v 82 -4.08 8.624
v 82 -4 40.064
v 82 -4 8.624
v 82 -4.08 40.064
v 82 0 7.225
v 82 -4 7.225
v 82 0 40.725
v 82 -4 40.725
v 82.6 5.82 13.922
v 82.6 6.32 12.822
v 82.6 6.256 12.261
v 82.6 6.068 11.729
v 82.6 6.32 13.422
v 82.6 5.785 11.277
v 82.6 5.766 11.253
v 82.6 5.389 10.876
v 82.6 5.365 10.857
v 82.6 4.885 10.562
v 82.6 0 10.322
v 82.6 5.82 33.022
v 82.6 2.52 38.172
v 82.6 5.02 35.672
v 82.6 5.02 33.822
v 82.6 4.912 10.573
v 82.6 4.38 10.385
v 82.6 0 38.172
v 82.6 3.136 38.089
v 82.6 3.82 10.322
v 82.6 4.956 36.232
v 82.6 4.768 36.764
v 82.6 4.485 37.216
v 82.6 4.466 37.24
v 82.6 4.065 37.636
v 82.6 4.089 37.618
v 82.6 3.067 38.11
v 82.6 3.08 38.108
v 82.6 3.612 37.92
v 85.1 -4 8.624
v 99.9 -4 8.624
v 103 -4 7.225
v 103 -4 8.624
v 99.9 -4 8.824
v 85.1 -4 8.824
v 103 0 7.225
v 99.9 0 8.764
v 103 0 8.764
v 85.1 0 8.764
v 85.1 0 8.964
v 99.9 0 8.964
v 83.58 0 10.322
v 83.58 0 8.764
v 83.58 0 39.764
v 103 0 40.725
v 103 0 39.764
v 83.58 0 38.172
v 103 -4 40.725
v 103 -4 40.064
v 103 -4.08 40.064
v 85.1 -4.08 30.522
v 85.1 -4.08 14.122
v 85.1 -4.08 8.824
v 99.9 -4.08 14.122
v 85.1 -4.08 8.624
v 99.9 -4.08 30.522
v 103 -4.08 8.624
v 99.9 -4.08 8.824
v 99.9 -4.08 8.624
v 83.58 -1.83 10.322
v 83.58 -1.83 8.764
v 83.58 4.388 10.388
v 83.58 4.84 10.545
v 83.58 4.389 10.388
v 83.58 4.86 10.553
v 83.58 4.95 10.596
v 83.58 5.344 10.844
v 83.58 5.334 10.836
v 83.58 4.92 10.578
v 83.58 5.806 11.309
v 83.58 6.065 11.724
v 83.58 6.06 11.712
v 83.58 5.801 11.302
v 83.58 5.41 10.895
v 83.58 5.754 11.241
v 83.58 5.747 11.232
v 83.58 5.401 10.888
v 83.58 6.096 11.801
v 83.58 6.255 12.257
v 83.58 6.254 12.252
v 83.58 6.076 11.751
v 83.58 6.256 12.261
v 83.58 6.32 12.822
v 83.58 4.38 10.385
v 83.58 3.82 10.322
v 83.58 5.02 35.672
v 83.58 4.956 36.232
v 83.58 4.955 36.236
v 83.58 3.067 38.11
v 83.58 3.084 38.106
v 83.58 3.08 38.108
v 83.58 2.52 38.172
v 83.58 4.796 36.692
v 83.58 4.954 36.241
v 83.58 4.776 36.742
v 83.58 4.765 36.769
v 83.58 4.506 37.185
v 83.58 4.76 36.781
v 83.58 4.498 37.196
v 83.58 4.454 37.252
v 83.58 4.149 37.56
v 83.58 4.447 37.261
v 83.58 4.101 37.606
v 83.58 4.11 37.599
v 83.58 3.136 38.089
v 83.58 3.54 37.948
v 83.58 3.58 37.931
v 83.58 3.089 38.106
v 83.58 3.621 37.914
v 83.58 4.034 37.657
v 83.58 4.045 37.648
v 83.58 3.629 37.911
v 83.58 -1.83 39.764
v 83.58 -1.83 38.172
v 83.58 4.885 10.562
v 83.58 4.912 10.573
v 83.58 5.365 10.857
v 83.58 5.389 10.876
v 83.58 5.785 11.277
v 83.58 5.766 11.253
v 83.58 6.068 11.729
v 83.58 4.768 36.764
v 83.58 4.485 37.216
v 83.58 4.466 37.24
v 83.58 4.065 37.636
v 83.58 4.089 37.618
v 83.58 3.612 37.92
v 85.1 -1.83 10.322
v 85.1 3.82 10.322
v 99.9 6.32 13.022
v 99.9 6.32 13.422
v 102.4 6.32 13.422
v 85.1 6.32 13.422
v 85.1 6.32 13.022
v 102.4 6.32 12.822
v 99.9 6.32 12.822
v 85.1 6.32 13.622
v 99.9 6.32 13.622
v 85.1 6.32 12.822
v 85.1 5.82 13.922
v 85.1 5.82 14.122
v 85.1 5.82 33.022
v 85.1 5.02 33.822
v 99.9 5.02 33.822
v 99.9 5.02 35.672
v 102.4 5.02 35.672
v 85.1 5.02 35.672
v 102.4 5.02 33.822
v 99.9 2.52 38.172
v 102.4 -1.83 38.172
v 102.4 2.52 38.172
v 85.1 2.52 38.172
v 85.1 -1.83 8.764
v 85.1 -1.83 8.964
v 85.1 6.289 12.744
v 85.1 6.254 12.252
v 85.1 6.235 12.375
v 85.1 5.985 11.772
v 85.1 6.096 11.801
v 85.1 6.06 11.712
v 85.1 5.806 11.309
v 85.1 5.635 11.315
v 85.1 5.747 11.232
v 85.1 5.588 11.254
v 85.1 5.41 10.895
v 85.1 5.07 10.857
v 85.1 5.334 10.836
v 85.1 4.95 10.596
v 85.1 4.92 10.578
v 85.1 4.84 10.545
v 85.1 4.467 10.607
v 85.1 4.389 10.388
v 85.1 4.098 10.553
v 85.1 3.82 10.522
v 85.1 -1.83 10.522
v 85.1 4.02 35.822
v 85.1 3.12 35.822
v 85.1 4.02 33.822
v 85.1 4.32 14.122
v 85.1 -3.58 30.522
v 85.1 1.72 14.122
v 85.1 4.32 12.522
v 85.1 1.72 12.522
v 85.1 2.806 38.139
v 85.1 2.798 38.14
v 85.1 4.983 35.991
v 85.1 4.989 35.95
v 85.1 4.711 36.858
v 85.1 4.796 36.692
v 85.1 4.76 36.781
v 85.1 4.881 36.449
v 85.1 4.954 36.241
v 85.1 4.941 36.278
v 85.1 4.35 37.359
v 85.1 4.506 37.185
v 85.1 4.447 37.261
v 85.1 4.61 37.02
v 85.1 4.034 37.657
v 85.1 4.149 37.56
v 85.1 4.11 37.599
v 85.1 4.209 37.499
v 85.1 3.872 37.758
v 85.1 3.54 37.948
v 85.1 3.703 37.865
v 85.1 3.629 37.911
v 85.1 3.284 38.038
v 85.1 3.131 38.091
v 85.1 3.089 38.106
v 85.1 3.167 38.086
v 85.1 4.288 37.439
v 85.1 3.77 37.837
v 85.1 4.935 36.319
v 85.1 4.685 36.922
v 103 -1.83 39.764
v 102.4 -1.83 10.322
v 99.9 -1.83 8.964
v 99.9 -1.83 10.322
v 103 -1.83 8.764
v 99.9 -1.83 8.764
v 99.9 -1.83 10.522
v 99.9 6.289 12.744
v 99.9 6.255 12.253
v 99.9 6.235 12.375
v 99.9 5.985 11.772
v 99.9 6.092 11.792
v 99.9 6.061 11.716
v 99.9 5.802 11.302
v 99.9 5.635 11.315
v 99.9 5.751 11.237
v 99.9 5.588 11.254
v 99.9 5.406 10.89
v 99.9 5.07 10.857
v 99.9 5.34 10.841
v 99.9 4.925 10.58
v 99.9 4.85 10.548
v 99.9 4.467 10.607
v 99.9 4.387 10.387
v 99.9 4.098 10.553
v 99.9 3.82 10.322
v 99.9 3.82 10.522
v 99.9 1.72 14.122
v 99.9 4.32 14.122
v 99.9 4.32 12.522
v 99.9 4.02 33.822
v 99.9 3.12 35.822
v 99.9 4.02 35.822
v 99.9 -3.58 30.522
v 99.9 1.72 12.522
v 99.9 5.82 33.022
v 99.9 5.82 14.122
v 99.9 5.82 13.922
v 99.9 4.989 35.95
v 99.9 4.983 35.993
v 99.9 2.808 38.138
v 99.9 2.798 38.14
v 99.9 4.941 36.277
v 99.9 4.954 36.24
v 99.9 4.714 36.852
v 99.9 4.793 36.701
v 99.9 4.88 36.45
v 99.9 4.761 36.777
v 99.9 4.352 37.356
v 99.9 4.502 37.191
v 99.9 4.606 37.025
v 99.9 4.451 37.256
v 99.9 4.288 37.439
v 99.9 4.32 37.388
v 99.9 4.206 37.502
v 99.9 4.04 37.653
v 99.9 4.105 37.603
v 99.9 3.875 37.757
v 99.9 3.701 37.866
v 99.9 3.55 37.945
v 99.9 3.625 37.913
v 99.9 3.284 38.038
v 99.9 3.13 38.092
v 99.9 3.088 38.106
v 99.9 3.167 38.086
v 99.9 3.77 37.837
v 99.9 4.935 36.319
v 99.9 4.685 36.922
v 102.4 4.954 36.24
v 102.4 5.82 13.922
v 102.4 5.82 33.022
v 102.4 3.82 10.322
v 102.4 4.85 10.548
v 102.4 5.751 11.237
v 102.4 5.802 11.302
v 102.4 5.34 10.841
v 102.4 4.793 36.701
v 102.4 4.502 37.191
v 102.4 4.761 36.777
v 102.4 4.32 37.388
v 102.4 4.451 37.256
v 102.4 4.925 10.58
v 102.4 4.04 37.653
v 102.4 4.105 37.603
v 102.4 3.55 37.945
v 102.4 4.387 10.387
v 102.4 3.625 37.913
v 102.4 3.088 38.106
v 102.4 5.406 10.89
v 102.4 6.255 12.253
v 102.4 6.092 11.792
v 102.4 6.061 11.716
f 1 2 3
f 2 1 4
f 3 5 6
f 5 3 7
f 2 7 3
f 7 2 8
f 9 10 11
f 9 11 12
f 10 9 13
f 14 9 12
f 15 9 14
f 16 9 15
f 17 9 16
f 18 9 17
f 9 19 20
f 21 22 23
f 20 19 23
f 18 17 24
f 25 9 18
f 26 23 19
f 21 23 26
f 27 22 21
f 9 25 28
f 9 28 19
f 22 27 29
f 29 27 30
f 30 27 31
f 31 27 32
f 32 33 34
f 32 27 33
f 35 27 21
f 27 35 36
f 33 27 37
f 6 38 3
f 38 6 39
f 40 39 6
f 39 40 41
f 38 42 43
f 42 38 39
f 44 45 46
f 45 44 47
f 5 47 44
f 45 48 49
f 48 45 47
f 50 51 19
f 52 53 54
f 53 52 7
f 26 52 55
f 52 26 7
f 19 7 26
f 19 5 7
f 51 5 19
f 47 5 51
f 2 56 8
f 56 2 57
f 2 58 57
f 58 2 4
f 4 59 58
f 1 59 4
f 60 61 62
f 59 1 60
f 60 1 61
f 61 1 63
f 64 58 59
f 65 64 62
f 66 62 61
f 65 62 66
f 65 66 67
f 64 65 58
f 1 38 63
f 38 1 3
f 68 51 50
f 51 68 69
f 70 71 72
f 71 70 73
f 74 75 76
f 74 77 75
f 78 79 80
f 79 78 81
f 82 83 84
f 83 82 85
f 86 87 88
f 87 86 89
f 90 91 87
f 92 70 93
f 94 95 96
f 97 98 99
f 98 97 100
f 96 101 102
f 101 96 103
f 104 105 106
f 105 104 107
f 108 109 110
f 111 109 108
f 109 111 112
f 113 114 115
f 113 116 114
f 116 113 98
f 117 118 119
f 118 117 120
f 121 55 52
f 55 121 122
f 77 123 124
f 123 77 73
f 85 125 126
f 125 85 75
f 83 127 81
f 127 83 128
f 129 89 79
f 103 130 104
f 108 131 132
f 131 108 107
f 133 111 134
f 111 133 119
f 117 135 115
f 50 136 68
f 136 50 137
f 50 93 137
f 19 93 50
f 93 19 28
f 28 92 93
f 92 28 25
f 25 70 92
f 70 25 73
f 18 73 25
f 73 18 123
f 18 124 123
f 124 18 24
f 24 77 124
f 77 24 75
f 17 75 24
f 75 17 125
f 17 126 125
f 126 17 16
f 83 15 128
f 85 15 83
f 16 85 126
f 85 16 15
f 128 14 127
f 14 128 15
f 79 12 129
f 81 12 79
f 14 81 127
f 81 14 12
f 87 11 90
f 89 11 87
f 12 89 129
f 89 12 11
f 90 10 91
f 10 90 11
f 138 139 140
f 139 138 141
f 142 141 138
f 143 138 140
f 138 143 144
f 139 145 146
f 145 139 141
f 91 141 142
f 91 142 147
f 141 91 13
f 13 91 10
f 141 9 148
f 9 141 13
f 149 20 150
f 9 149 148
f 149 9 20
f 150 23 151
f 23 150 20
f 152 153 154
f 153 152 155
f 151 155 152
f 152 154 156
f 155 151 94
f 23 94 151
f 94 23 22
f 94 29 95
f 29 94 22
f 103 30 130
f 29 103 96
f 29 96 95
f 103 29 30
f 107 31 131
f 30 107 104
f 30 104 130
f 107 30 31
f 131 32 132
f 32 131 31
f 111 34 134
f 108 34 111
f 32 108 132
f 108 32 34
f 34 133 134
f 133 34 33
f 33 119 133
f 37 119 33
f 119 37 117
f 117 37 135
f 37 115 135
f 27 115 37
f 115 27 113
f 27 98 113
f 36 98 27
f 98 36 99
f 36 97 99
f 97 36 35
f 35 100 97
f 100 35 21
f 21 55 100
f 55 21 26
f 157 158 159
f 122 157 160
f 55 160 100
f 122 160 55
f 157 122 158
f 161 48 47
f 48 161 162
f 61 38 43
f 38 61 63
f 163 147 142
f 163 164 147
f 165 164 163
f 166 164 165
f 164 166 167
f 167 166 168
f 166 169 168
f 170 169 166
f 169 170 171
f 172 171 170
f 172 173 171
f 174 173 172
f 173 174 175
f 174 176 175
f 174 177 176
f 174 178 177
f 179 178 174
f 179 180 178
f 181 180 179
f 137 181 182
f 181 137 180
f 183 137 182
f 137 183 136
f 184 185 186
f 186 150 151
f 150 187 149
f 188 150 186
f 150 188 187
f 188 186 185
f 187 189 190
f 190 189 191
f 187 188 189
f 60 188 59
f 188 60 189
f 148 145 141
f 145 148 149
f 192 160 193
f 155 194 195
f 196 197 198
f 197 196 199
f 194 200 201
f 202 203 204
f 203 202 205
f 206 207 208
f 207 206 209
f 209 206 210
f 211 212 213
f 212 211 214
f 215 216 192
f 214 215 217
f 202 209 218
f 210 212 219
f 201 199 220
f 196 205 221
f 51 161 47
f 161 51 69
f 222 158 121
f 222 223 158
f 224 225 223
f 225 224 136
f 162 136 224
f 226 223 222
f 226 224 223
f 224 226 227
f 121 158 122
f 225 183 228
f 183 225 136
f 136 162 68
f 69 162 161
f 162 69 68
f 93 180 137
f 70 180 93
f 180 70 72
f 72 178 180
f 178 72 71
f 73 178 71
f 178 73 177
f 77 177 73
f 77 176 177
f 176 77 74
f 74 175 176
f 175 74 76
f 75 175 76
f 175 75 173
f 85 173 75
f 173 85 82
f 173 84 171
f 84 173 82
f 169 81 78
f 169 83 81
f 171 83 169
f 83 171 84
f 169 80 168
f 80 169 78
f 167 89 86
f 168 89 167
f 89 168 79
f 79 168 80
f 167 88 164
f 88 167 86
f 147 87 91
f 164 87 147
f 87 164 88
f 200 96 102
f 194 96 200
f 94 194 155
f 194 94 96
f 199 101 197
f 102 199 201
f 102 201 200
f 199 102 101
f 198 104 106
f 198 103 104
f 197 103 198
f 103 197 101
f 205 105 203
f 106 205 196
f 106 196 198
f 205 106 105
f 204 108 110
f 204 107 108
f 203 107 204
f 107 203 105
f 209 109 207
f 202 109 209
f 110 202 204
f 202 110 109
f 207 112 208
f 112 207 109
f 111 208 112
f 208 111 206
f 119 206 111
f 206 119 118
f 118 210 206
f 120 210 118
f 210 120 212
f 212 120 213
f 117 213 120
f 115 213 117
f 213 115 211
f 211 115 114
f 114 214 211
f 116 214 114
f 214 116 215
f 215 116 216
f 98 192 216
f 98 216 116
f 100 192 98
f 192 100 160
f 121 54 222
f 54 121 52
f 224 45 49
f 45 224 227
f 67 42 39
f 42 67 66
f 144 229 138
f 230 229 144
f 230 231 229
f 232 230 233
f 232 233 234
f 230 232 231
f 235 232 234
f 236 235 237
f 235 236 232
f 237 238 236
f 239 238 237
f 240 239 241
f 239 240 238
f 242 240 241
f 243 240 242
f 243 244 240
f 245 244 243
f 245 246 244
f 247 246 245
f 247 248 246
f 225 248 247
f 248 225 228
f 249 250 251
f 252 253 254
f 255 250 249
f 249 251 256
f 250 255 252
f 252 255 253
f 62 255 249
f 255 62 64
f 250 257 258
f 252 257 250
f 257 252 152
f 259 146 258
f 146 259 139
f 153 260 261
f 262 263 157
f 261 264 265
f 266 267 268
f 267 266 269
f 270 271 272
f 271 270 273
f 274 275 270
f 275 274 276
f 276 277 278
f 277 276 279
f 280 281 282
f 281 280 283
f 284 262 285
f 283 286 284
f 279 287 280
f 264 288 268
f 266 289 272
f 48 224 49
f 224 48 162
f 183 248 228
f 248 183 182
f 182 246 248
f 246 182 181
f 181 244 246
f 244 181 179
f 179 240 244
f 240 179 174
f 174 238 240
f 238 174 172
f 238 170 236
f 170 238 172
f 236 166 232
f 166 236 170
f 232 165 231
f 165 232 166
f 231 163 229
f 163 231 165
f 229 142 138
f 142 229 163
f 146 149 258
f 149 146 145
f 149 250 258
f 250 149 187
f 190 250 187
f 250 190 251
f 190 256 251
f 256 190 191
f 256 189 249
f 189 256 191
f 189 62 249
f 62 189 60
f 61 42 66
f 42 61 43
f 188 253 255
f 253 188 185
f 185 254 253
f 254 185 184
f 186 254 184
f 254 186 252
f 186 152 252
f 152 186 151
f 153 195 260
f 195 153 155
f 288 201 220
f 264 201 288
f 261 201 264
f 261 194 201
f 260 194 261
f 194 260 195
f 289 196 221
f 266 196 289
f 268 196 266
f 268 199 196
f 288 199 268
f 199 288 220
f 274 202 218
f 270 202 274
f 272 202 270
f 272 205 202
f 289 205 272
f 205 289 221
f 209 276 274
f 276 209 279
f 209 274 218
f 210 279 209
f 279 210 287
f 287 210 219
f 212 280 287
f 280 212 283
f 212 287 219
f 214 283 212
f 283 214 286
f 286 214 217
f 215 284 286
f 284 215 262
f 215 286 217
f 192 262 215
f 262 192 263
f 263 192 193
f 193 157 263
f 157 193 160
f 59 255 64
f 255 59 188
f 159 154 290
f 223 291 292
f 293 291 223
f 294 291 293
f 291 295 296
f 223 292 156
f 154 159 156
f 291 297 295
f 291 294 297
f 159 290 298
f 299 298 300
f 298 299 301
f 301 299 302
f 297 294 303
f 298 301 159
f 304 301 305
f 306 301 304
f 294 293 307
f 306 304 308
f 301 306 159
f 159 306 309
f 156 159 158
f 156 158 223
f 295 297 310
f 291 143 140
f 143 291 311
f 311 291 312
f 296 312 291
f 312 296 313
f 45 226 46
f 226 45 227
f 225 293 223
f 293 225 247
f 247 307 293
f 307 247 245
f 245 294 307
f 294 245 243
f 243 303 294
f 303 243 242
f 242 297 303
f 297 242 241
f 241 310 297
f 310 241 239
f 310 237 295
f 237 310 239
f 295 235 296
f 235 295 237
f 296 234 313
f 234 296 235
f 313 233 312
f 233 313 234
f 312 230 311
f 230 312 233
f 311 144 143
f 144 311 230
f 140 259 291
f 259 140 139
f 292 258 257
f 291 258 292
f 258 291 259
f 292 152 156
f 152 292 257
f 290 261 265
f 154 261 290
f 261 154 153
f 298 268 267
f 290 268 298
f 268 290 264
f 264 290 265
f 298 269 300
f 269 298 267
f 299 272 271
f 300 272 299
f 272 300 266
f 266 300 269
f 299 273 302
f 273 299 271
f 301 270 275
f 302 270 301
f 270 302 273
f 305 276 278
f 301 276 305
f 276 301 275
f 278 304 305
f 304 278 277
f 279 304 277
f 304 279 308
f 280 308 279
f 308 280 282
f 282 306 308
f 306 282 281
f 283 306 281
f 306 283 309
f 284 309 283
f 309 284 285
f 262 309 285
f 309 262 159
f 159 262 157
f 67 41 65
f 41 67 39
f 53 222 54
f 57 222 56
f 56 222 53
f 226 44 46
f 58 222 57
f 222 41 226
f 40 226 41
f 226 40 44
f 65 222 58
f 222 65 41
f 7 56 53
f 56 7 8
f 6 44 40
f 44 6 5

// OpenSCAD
// Lab Rax generic equipment tray + faceplate (wizard template).
// Faceplate derived from the Pi4 baseline; rack holes follow the four-corner layout of the user-supplied
// 1U blank plate (faceplate_mounting.json): EVERY rack unit gets 4 holes, never a single centre pair.
// The wizard appends override assignments at the end of this file.
// PROPOSED, UNVALIDATED: printed fit, strength and rack clearance are UNKNOWN.
$fn=48;
part="assembly";            // assembly, faceplate, tray, combined, rear_bracket
// Device envelope (mm). Origin of hole coordinates = device front-left corner, seen from above.
dev_w=85; dev_d=56; dev_h=20;
feet=[];                     // [[x,y,w,d,h],...] underside feet, device frame front-left origin
holes=[];                   // [[x,y],...] mounting hole centres
hole_d=2.7;                 // device mounting hole diameter
device_mount="inserts";     // inserts, pegs, clips, straps
standoff=6;                 // device lift above tray floor
insert_pilot=3.2;           // pilot for heat-set insert (inserts mode)
board_t=1.6;                // board/flange thickness (pegs, clips)
joint="screw";              // screw, single ("snap" retired 2026-10-19: too brittle; kept as history)
u=1;                        // faceplate height in rack units
keystones=[];               // [x,...] keystone centres on faceplate (X=0 centre)
// Keystone v2 (2026-10-19, now the fallback; see ks_style): re-modelled from measurements of Brian's reference keystone frame
// (14.5 x 16 opening was too narrow when printed). Opening 14.8 x 16.6 through the plate, plus a rear collar
// 19.8 x 27.85 reaching 9.2 mm behind the front face (bottom lip to 10.4) that carries the latch ramp and catches.
ks_w=14.8; ks_h=16.6;       // front opening
ks_ow=19.8; ks_ob=11.9; ks_ot=15.95; ks_od=9.2; ks_lip=10.4;  // collar width, below/above opening centre, depth
ports=[];                   // [[x,z,w,h,r],...] faceplate cut-outs, z from slot bottom, r=corner radius
front_gap=12;               // device front to faceplate rear face
margin=8;                   // tray border around device
dev_off_x=0;                // device left/right offset, mm from centred (+ = right, seen from the front)
dev_off_y=0;                // device front/back offset, mm added to front_gap (+ = toward the rear)
dev_rot=0;                  // device rotation seen from above: 0, 90, 180, 270 (90/270 swap width and depth)
rear_support=false;         // heavy/deep equipment: tray runs to the rear posts and screws to a rear bracket
coupon=[];                  // test coupon: [x0,x1,ymax] keeps only that slice of the part

// 4 mm plate (owner default 2026-10-18). Corner radius is limited by the four-corner holes:
// the reference holes sit 1.6 mm from the top/bottom edge, so larger corners would cut into them.
rack_pitch=44.45; plate_gap=0.05; legacy_slot_offset=1.225;
plate_bottom=plate_gap/2; plate_center=u*rack_pitch/2;
plate_w=252; plate_t=4; plate_r=2.5; plate_h=u*rack_pitch-plate_gap;
hole_x=118.2625; hole_dz=15.902;   // each U: holes at its centre ±hole_dz (6.323 / 38.127 above the slot bottom)
rack_depth=240;             // Lab Rax frame depth (front of front posts to back of rear posts)
nudge=0;                    // render-repair only: tiny size offset applied when OpenSCAD 2021 emits a sliver
sleeve=device_mount=="sleeve";
// PROPOSED sleeve defaults (mm); independent design, fit and strength UNKNOWN.
sl_side=0.5; sl_top=0.3; sl_wall=6; sl_lip_w=10; sl_lip_t=1.5; sl_band=1.5; sl_stop_t=4; sl_stop_h=6;
foot_clearance=0.5; foot_extra_depth=0.3; foot_min_floor=0.8; foot_lip_t=3.0;
tray_t=3; floor_z=(device_mount=="flat"||sleeve)?0.5:7+legacy_slot_offset; tray_z=floor_z; // @flat-floor
assert(dev_rot==0||dev_rot==90||dev_rot==180||dev_rot==270,"dev_rot must be 0, 90, 180 or 270");
// Device footprint on the tray after rotation; the tray stays centred and grows to keep the margin.
fp_w=(dev_rot==90||dev_rot==270)?dev_d:dev_w; fp_d=(dev_rot==90||dev_rot==270)?dev_w:dev_d;
rack_inner_w=208; side_clear=2; max_tray=rack_inner_w-2*side_clear; // PROPOSED nominal opening / side clearance
tray_w=2*(abs(dev_off_x)+fp_w/2+(sleeve?max(margin,sl_side+sl_wall):margin)); tray_d=rear_support?rack_depth:sleeve?-plate_t+fp_d+margin:dev_off_y+fp_d+front_gap+margin;
tray_x=-tray_w/2; tray_y=0;
 // @flat-begin
assert(device_mount!="flat"||front_gap+dev_off_y>=6.2,"Flat corner stops need a front gap of at least 6.2 mm");
assert(device_mount!="flat"||joint!="screw"||front_gap+dev_off_y>=11.5,"Flat device must clear the front screw joint (front gap >= 11.5 mm)");
assert(device_mount!="flat"||!rear_support||front_gap+dev_off_y+fp_d<=rack_depth-11.5,"Flat device must clear the rear screw joint (rear gap >= 11.5 mm)");
 // @flat-end
dev_x=-fp_w/2+dev_off_x; dev_y=sleeve?-plate_t:front_gap+dev_off_y; floor_top=tray_z+tray_t;
assert(tray_w<=max_tray,str("This tray is ",tray_w," mm wide but the rack opening allows ",max_tray," mm (",rack_inner_w," mm minus ",side_clear," mm each side). Try Rotate 90 degrees, or reduce dev_off_x."));
assert(sleeve||dev_y>=0,str("Device moved into the faceplate: dev_off_y must be at least ",-front_gap));
assert(!rear_support||dev_y+fp_d+margin<=rack_depth,"Device moved past the rear posts; reduce dev_off_y");
// Device-frame point [x,y] (front-left origin, unrotated) -> footprint offset from [dev_x,dev_y].
function dp(p)=dev_rot==90?[dev_d-p[1],p[0]]:dev_rot==180?[dev_w-p[0],dev_d-p[1]]:dev_rot==270?[p[1],dev_w-p[0]]:p;
foot_h=(device_mount=="flat"||sleeve)?max([0,for(f=feet)f[4]]):0; foot_depth=foot_h>0?foot_h+foot_extra_depth:0;
sl_half=fp_w/2+sl_side; sl_bottom=floor_top; sl_window_top=sl_bottom+dev_h-foot_h+sl_top;  // case rests on the floor top; feet hang in pockets foot_extra_depth deeper
sl_lip=sl_window_top+(foot_h>0?foot_lip_t:sl_lip_t)<=u*rack_pitch?(foot_h>0?foot_lip_t:sl_lip_t):0;
sl_rear=dev_y+fp_d;
sl_joints=[dev_off_x-sl_half-sl_wall/2,dev_off_x+sl_half+sl_wall/2];
sl_joint_z=[sl_bottom+3,sl_window_top-3];
assert(!sleeve||fp_d/4-plate_t-6>=8,"Sleeve depth must be at least 72 mm to keep strap slots clear of the front joint");
assert(!sleeve||sl_bottom-plate_bottom>=sl_band&&u*rack_pitch-plate_bottom-sl_window_top>=sl_band,str("Too tall for a flush window in ",u,"U; choose ",u+1,"U"));
assert(!sleeve||!rear_support||sl_rear+sl_stop_t<=rack_depth-11.5,"Sleeve rear stop must clear rear joint by 11.5 mm");
assert(!sleeve||joint!="screw"||sl_window_top-sl_bottom>=10,"Sleeve screw joint needs a window at least 10 mm tall");
jx=min(40,tray_w/2-12); joint_x=[-jx,jx];
tongue_w=12; tongue_depth=7; tongue_h=3; tongue_z=tray_z+3.5;
slot_clear=0.3; boss_d=14; m3_clear=6.6; joint_pilot=7.6;  // HP4-M6-B: rack M6 insert bore and clearance

// @m6-begin
// M6 bracket hardware (Brian, 2026-10-28; reproduces the approved HDT-M6-A drive tray). Opt-in m6_joint: equipment.py
// switches it on (front_gap 15.5, boss 14, insert bore 7.6 = the rack posts' M6 insert holes, 6.6 clearance) and kept
// only then. Joints: inner pair + one at each tray edge (edge pair only on narrow trays); edge joints 2 screws, inner the
// upper one. Tabs: rounded-top 20 x 6 plate with the tongue-slot foot, 4 mm floor coves, 11.5 x 3.5 counterbore so the
// M6 x 8 button head sits below the rear face. PROPOSED — UNVALIDATED: fit and strength UNKNOWN.
function jzx(x)=[24];  // HP4-M6-B: one screw at Z=32.225; boss top 39.225, tab top 42.225
side_wall_t=2.5; side_wall_h=15; up_t=6; cb_d=11.5; cb_depth=3.5; tab_w=20; tab_foot_h=5; fil_r=4; floor_r=6; wall_r=6;
module m6_tray_joint_add(){
 ft=tray_z+tray_t;  // floor top
 for(x=joint_x)intersection(){
  union(){
   translate([0,8.3+up_t,0])rotate([90,0,0])linear_extrude(up_t)hull(){translate([x-tab_w/2,ft-0.01])square([tab_w,1]);translate([x,tray_z+max(jzx(x))])circle(d=tab_w);}
   hull(){translate([x-tab_w/2,0,ft-0.01])cube([tab_w,8.3+up_t,1]);translate([x-tab_w/2,8.3,ft-0.01])cube([tab_w,0.01,tab_foot_h]);
         translate([x-tab_w/2,1.5,ft+tab_foot_h-1.5])rotate([0,90,0])cylinder(r=1.5,h=tab_w);translate([x-tab_w/2,0,ft-0.01])cube([tab_w,0.01,tab_foot_h-1.5]);}
   for(sd=[-1,1])translate([x+sd*tab_w/2-(sd<0?fil_r:0),8.3,ft-0.01])difference(){cube([fil_r,up_t,fil_r]);translate([sd<0?0:fil_r,-0.1,fil_r])rotate([-90,0,0])cylinder(r=fil_r,h=up_t+0.2);}
  }
  translate([tray_x0,-1,0])cube([tray_x1-tray_x0,tray_d+2,60]);  // unchanged asymmetric floor bounds
 }
 // HP4-M6-B: edge walls omitted to preserve the keystone gap and wide cable lane.
}
module m6_tray_joint_cut(){for(x=joint_x,zz=jzx(x)){translate([x,8.3+up_t+0.1,tray_z+zz])rotate([90,0,0])cylinder(d=m3_clear,h=up_t+9);
 translate([x,8.3+up_t+0.1,tray_z+zz])rotate([90,0,0])cylinder(d=cb_d,h=cb_depth+0.1);}}
// @m6-end

module capsule2d(len=10,diam=7){hull(){translate([-(len-diam)/2,0])circle(d=diam);translate([(len-diam)/2,0])circle(d=diam);}}
module rrect(w,h,r){rr=min(r,w/2-0.01,h/2-0.01);if(rr<=0)square([w,h],center=true);else offset(r=rr)square([w-2*rr,h-2*rr],center=true);}
// Mirror front-of-tray features to the rear (about the rack's mid-depth).
module to_rear(){translate([0,rack_depth/2,0])mirror([0,1,0])translate([0,-rack_depth/2,0])children();}

// Faceplate outline seen from the front: 2D X = rack X, 2D Y = height Z.
// rear=true cuts the larger keystone pocket; plain=true leaves out keystones/ports (rear bracket).
module plate2d(rear=false,plain=false){
 difference(){
  hull()for(sx=[-1,1],sz=[-1,1])translate([sx*(plate_w/2-plate_r),plate_center+sz*(plate_h/2-plate_r)])circle(r=plate_r+nudge);
  for(i=[0:u-1],dz=[-hole_dz,hole_dz],x=[-hole_x,hole_x])translate([x,i*rack_pitch+rack_pitch/2+dz])capsule2d();
  if(!plain){
   if(sleeve)translate([dev_off_x,(sl_bottom+sl_window_top)/2])square([2*sl_half,sl_window_top-sl_bottom],center=true);
   for(p=ports)translate([p[0],p[1]])rrect(p[2],p[3],p[4]);
  }
 }
}
// Plate between y=y0 (front) and y0+t, built from the 2D outline (cleaner meshes than 3D cuts in OpenSCAD 2021).
module plate_layer(y0,t,rear=false,plain=false){translate([0,y0+t,0])rotate([90,0,0])linear_extrude(height=t)plate2d(rear,plain);}

module plate_joint_add(rear=false){
 if(joint=="screw"&&(!sleeve||rear)){
  for(x=joint_x)translate([x-tongue_w/2,0,tongue_z])cube([tongue_w,tongue_depth,tongue_h]);
  for(x=joint_x,zz=jzx(x))translate([x,0,tray_z+zz])rotate([-90,0,0])cylinder(d=boss_d,h=8);
 }
 if(joint=="snap") for(x=joint_x){
  // Cantilever arm under the tray floor; barb snaps up into a floor window.
  translate([x-4,0,tray_z-2])cube([8,16,2]);
  // Barb v2: square catch face toward the plate, ramp falling toward the rear so the tray, slid in
  // from the rear, cams the arm down until its window drops over the barb.
  translate([x-4,12,tray_z])hull(){cube([8,0.6,1.2]);cube([8,2.4,0.01]);}
 }
}
// Keystone collar behind the plate, and the jack-shaped cut through plate + collar.
// Profile in (d = depth behind front face, z from opening centre); X width is ks_w throughout.
module ks_collar(){for(x=keystones)translate([x-ks_ow/2,-plate_t,plate_center]){
 translate([0,0,-ks_ob])cube([ks_ow,ks_od,ks_ob+ks_ot]);
 translate([0,0,-ks_ob])cube([ks_ow,ks_lip,ks_ob-ks_h/2]);
}}
module ks_cut(){for(x=keystones)translate([x-ks_w/2,-plate_t,plate_center])rotate([90,0,90])linear_extrude(height=ks_w)
 polygon([[-1,-ks_h/2],[5.8,-ks_h/2],[5.8,-9.9],[9.2,-9.9],[9.2,-ks_h/2],[11,-ks_h/2],[11,11.6],[8.2,11.6],
          [8.2,ks_ot+1],[7.2,ks_ot+1],[7.2,13.6],[0.6,ks_h/2],[-1,ks_h/2]]);}
// Golden keystone (Brian, 2026-10-19): exact cross-sections of the keystone on Brian's SG108 faceplate, which fits
// perfectly in practice. Source: "10 inch shelf TP-Link SG108 Plus Keystone" by Goul (MakerWorld remix, BY-NC-SA),
// local/personal use only, never redistributed. Each band: [X from opening centre, width, polygons in source (Y, Z)]
// with source Y running down the plate (opening centre Y=25.09) and Z = depth (keystone face 0, plate back 4.08).
// The block replaces the plate within 21 x 33.5 mm around each keystone; front face sits 0.08 proud like the source.
ks_style="golden";          // golden (SG108 copy) or v2 (own measured rebuild, kept as fallback)
// Brian, 2026-10-19: the golden v3 print fit left/right well but had ~0.4 mm play up/down. ks_tight moves the
// bottom (hook-side) edge of the opening, its hook groove and lip up by this much; the latch side is unchanged.
ks_tight=0.2;  // Brian, 2026-10-19: v5 coupon (0.2) printed a perfect fit; v4 (0.4) was too tight.
KS_GOLD=[
  [-10.50,0.60,[[[45.500,4.080],[45.500,0.080],[38.691,0.080],[38.691,0.000],[7.251,0.000],[7.251,0.080],[1.000,0.080],[1.000,4.080],[1.071,4.080]]]],
  [-9.90,0.98,[[[9.143,4.080],[9.143,6.600],[9.205,7.147],[9.207,7.160],[9.226,7.216],[9.395,7.692],[9.679,8.145],[9.697,8.169],[10.075,8.546],[10.099,8.565],[10.551,8.848],[11.083,9.036],[11.643,9.100],[13.493,9.100],[14.293,9.900],[33.393,9.900],[33.893,10.400],[34.493,10.400],[35.054,10.336],[35.586,10.148],[36.038,9.865],[36.062,9.846],[36.439,9.469],[36.458,9.445],[36.742,8.992],[36.753,8.965],[36.930,8.460],[36.993,7.900],[36.993,4.080],[45.500,4.080],[45.500,0.080],[38.691,0.080],[38.691,0.000],[7.251,0.000],[7.251,0.080],[1.000,0.080],[1.000,4.080],[1.014,4.080]]]],
  [-8.92,1.52,[[[7.551,4.080],[7.551,2.250],[9.143,2.250],[9.143,6.600],[9.209,7.169],[9.367,7.620],[9.404,7.709],[9.658,8.114],[9.716,8.190],[9.755,8.229],[10.054,8.527],[10.130,8.586],[10.534,8.840],[10.623,8.876],[11.074,9.034],[11.643,9.100],[13.493,9.100],[14.293,9.900],[33.393,9.900],[33.893,10.400],[34.493,10.400],[35.063,10.334],[35.514,10.176],[35.603,10.140],[36.006,9.886],[36.083,9.827],[36.420,9.490],[36.479,9.414],[36.719,9.030],[36.737,9.000],[36.770,8.920],[36.927,8.469],[36.993,7.900],[36.993,2.250],[38.551,2.250],[38.551,4.080],[45.500,4.080],[45.500,0.080],[38.691,0.080],[38.691,0.000],[7.251,0.000],[7.251,0.080],[1.000,0.080],[1.000,4.080],[1.044,4.080]]]],
  [-7.40,14.80,[[[7.551,4.080],[7.551,2.250],[9.143,2.250],[9.143,6.600],[9.175,6.878],[9.229,7.247],[9.478,7.850],[9.876,8.368],[10.393,8.765],[10.996,9.015],[11.365,9.069],[11.643,9.100],[13.493,9.100],[13.493,8.100],[11.493,8.100],[11.493,7.200],[16.793,0.500],[16.793,0.000],[7.251,0.000],[7.251,0.080],[1.000,0.080],[1.000,4.080],[1.025,4.080]],[[45.500,4.080],[45.500,0.080],[38.691,0.080],[38.691,0.000],[33.393,0.000],[33.393,5.800],[34.993,5.800],[34.993,8.400],[33.393,8.400],[33.393,9.900],[33.893,10.400],[34.493,10.400],[34.771,10.369],[35.140,10.315],[35.743,10.065],[36.200,9.715],[36.261,9.668],[36.658,9.150],[36.908,8.547],[36.962,8.178],[36.993,7.900],[36.993,2.250],[38.551,2.250],[38.551,4.080],[42.555,4.080]]]],
  [7.40,2.50,[[[45.500,4.080],[45.500,0.080],[38.691,0.080],[38.691,0.000],[7.251,0.000],[7.251,0.080],[1.000,0.080],[1.000,4.080],[7.551,4.080],[7.551,2.250],[9.143,2.250],[9.143,6.600],[9.209,7.168],[9.370,7.630],[9.402,7.705],[9.662,8.120],[9.712,8.185],[9.927,8.400],[10.059,8.531],[10.124,8.582],[10.538,8.841],[10.614,8.873],[11.075,9.034],[11.643,9.100],[13.493,9.100],[14.293,9.900],[33.393,9.900],[33.893,10.400],[34.493,10.400],[35.062,10.335],[35.523,10.172],[35.599,10.141],[36.013,9.882],[36.078,9.831],[36.425,9.486],[36.474,9.420],[36.735,9.005],[36.767,8.930],[36.928,8.467],[36.993,7.900],[36.993,2.250],[38.551,2.250],[38.551,4.080],[42.599,4.080]]]],
  [9.90,0.60,[[[45.500,4.080],[45.500,0.080],[38.691,0.080],[38.691,0.000],[7.251,0.000],[7.251,0.080],[1.000,0.080],[1.000,4.080],[7.551,4.080],[7.551,2.250],[38.551,2.250],[38.551,4.080],[42.635,4.080]]]]
];
// Depths are shifted by -0.08 before polygon() and the 0.08 is added back in the 3D transform: OpenSCAD 2021 snaps 2D
// points to a 1/65536 mm grid, which put the plate-flush faces (Z 0.08 / 4.08) 0.0000134 mm off the plate and left a
// non-manifold sliver edge. Shifted, those faces sit at exactly 0 and 4.0 (on the grid); the shape is unchanged.
// The block is cut 0.1 mm oversize in height, then clipped in rack coordinates by the same box as ks_box_cut, so its
// top/bottom faces are the very same numbers as the plate opening (the transform alone landed them a hair off).
module ks_golden(){for(x=keystones)intersection(){
 translate([x,0,plate_center])multmatrix([[1,0,0,0],[0,0,1,-4],[0,-1,0,25.09],[0,0,0,1]])intersection(){
  union()for(b=KS_GOLD)translate([b[0],0,0])rotate([90,0,90])linear_extrude(height=b[1])for(pg=b[2])
   translate([b[1]>10&&min([for(q=pg)q[0]])>30?-ks_tight:0,0])polygon([for(q=pg)[q[0],q[1]-0.08]]);  // opening band, hook side
  translate([-10.5,25.09-18.6,-0.09])cube([21,33.7,10.42]);
 }
 translate([x-10.5,-plate_t-1,plate_center-15])cube([21,plate_t+16,33.5]);
}}
module ks_box_cut(){for(x=keystones)translate([x-10.5,-plate_t-0.01,plate_center-15])cube([21,plate_t+0.02,33.5]);}
module plate_joint_cut(rear=false){if(joint=="screw"&&(!sleeve||rear))for(x=joint_x,zz=jzx(x))translate([x,-0.1,tray_z+zz])rotate([-90,0,0])cylinder(d=joint_pilot,h=8.2);}

module faceplate(){
 union(){
  difference(){
   union(){
    plate_layer(-plate_t,plate_t);
    if(ks_style=="v2")ks_collar();
    plate_joint_add();
   }
   plate_joint_cut();
   hp4_plate_id();
   if(sleeve&&joint=="screw")for(x=sl_joints,z=sl_joint_z)translate([x,-plate_t-0.1,z])rotate([-90,0,0])cylinder(d=m3_clear,h=plate_t+0.2);
   if(ks_style=="v2")ks_cut(); else ks_box_cut();
  }
  if(ks_style!="v2")ks_golden();
 }
}
// Plain plate on the rear posts (mirror of the faceplate, no openings) that the tray's rear end screws/snaps to.
module rear_bracket(){to_rear()difference(){union(){plate_layer(-plate_t,plate_t,false,true);plate_joint_add(true);}plate_joint_cut(true);}}

module device_features_add(){
 if(sleeve){
  for(side=[-1,1]){
   x=side<0?dev_off_x-sl_half-sl_wall:dev_off_x+sl_half;
   translate([x,0,floor_top])cube([sl_wall,sl_rear,sl_window_top-floor_top]);
   if(sl_lip>0)translate([side<0?x:dev_off_x+sl_half-min(sl_lip_w,sl_half),0,sl_window_top])cube([sl_wall+min(sl_lip_w,sl_half),sl_rear,sl_lip]);
  }
  translate([dev_x,sl_rear,floor_top])cube([fp_w,sl_stop_t,min(sl_stop_h,dev_h-foot_h)]);
 }

 // @flat-begin
 if(device_mount=="flat"){
  // Corner stops outside the footprint, with 0.2 mm nominal clearance. Retention UNKNOWN.
  for(x=[dev_x-6.2,dev_x+fp_w+0.2],y=[dev_y,dev_y+fp_d-min(6,fp_d)])
   translate([x,y,floor_top])cube([6,min(6,fp_d),min(6,dev_h-foot_h)]);
  for(x=[dev_x,dev_x+fp_w-min(6,fp_w)],y=[dev_y-6.2,dev_y+fp_d+0.2])
   translate([x,y,floor_top])cube([min(6,fp_w),6,min(6,dev_h-foot_h)]);
 }
 // @flat-end
 if(device_mount=="inserts")for(h=[for(q=holes)dp(q)])translate([dev_x+h[0],dev_y+h[1],floor_top])cylinder(d=max(insert_pilot+3.5,7),h=standoff);
 if(device_mount=="pegs")for(h=[for(q=holes)dp(q)])translate([dev_x+h[0],dev_y+h[1],floor_top]){
  cylinder(d=hole_d+3,h=standoff);
  translate([0,0,standoff])cylinder(d=hole_d-0.3,h=board_t+0.8);
  translate([0,0,standoff+board_t+0.8])cylinder(d1=hole_d-0.3,d2=hole_d-1,h=0.8);
 }
 if(device_mount=="clips"){
  // Support ledges at the four corners plus a flexing clip on each side.
  for(x=[dev_x-1,dev_x+fp_w-5],y=[dev_y-1,dev_y+fp_d-5])translate([x,y,floor_top])cube([6,6,standoff]);
  for(s=[-1,1])translate([s>0?dev_x+fp_w+0.2:dev_x-2.2,dev_y+fp_d/2-5,floor_top]){
   cube([2,10,standoff+board_t+2.5]);
   translate([s>0?-1.2:2,0,standoff+board_t+0.2])hull(){cube([1.2,10,1.6]);translate([s>0?1.2:0,0,1.6])cube([0.01,10,0.6]);}
  }
 }
}
module device_features_cut(){
 if(sleeve&&joint=="screw")for(x=sl_joints,z=sl_joint_z)translate([x,-0.1,z])rotate([-90,0,0])cylinder(d=joint_pilot,h=8.1);
 // Strap access through each wall at quarter-depth, clear of the front/rear joints.
 if(sleeve)for(side=[-1,1],y=[dev_y+fp_d*0.25,dev_y+fp_d*0.75])
  translate([side<0?dev_off_x-sl_half-sl_wall-0.1:dev_off_x+sl_half-0.1,y-6,floor_top-0.1])cube([sl_wall+0.2,12,3.1]);

 if(device_mount=="inserts")for(h=[for(q=holes)dp(q)])translate([dev_x+h[0],dev_y+h[1],floor_top+0.01])cylinder(d=insert_pilot,h=standoff+0.1);
 if(device_mount=="flat"||sleeve)for(x=[dev_x-5.5,dev_x+fp_w+2.5],y=[dev_y+fp_d*0.25,dev_y+fp_d*0.75])
  translate([x,y-6,tray_z-0.1])cube([3,12,tray_t+0.2]);
 // Blind pockets retain at least foot_min_floor; taller feet pass through the floor by design.
 if(foot_h>0&&(device_mount=="flat"||sleeve))for(f=feet){corners=[dp([f[0],f[1]]),dp([f[0]+f[2],f[1]]),dp([f[0],f[1]+f[3]]),dp([f[0]+f[2],f[1]+f[3]])];x0=dev_x+min([for(p=corners)p[0]])-foot_clearance;x1=dev_x+max([for(p=corners)p[0]])+foot_clearance;y0=dev_y+min([for(p=corners)p[1]])-foot_clearance;y1=dev_y+max([for(p=corners)p[1]])+foot_clearance;deep=f[4]+foot_extra_depth;
  translate([x0,y0,deep>tray_t-foot_min_floor?tray_z-0.1:floor_top-deep])cube([x1-x0,y1-y0,deep>tray_t-foot_min_floor?tray_t+0.2:deep+0.02]);}
}

module tray_joint_add(rear=false){
 if(joint=="screw"&&(!sleeve||rear)){
  m6_tray_joint_add();
 }
}
module tray_joint_cut(rear=false){
 if(joint=="screw"&&(!sleeve||rear)){
  for(x=joint_x)translate([x-(tongue_w+slot_clear)/2,-0.1,tongue_z-slot_clear/2])cube([tongue_w+slot_clear,tongue_depth+slot_clear,tongue_h+slot_clear]);
  m6_tray_joint_cut();
 }
 if(joint=="snap")for(x=joint_x)translate([x-4.3,11.6,tray_z-0.1])cube([8.6,3.2,tray_t+0.2]);
}

module tray(){
 difference(){
  union(){
   translate([tray_x0,tray_y,tray_z])cube([tray_x1-tray_x0,tray_d,tray_t]);  // hand-set: keystone lane on the left, Pi edge at the right limit
   cradle();
   tray_joint_add();
   if(rear_support)to_rear()tray_joint_add(true);
   device_features_add();device2_features_add();
  }
  tray_joint_cut();
  if(rear_support)to_rear()tray_joint_cut(true);
  device_features_cut();device2_features_cut();
  lane_tie_cut();
  hp4_tray_id();
 }
}

module clip_coupon(){if(len(coupon)==3)intersection(){children();translate([coupon[0],-50,-50])cube([coupon[1]-coupon[0],coupon[2]+50,400]);}else children();}

if(false)clip_coupon(){
 if(part=="faceplate")faceplate();
 else if(part=="tray")tray();
 else if(part=="rear_bracket")rear_bracket();
 else if(part=="combined")union(){faceplate();translate([tray_x,-0.01,tray_z])cube([tray_w,0.02+0.01,tray_t]);tray();if(rear_support)rear_bracket();}
 else {color("steelblue")faceplate();color("silver")tray();if(rear_support)color("steelblue")rear_bracket();
  %translate([dev_x,dev_y,floor_top+(device_mount=="inserts"||device_mount=="pegs"||device_mount=="clips"?standoff:0)-foot_h])cube([fp_w,fp_d,dev_h]);device2_ghost();}
}

// ---- Second device on this tray (Brian, 2026-10-20). PROPOSED; fit, retention and strength UNKNOWN.
// Declared here so the derived values below see them; the wizard overrides at the end replace them in place.
dev2_w=1; dev2_d=1; dev2_h=1; dev2_hole_d=2.7; dev2_standoff=6; dev2_insert_pilot=3.2; dev2_board_t=1.6; dev2_holes=[]; dev2_mount="inserts"; dev2_off_x=0; dev2_off_y=0; dev2_rot=0; dev2_feet=[];
fp2_w=(dev2_rot==90||dev2_rot==270)?dev2_d:dev2_w; fp2_d=(dev2_rot==90||dev2_rot==270)?dev2_w:dev2_d;
dev2_x=-fp2_w/2+dev2_off_x; dev2_y=front_gap+dev2_off_y;
dev2_foot_h=dev2_mount=="flat"?max([0,for(f=dev2_feet)f[4]]):0;
module device2_ghost(){%translate([dev2_x,dev2_y,floor_top+(dev2_mount=="inserts"||dev2_mount=="pegs"||dev2_mount=="clips"?dev2_standoff:0)-dev2_foot_h])cube([fp2_w,fp2_d,dev2_h]);}
function dp2(p)=dev2_rot==90?[dev2_d-p[1],p[0]]:dev2_rot==180?[dev2_w-p[0],dev2_d-p[1]]:dev2_rot==270?[p[1],dev2_w-p[0]]:p;
module device2_features_add(){
 if(sleeve){
  for(side=[-1,1]){
   x=side<0?dev2_off_x-sl_half-sl_wall:dev2_off_x+sl_half;
   translate([x,0,floor_top])cube([sl_wall,sl_rear,sl_window_top-floor_top]);
   if(sl_lip>0)translate([side<0?x:dev2_off_x+sl_half-min(sl_lip_w,sl_half),0,sl_window_top])cube([sl_wall+min(sl_lip_w,sl_half),sl_rear,sl_lip]);
  }
  translate([dev2_x,sl_rear,floor_top])cube([fp2_w,sl_stop_t,min(sl_stop_h,dev2_h-dev2_foot_h)]);
 }

 // @flat-begin
 if(dev2_mount=="flat"){
  // Corner stops outside the footprint, with 0.2 mm nominal clearance. Retention UNKNOWN.
  for(x=[dev2_x-6.2,dev2_x+fp2_w+0.2],y=[dev2_y,dev2_y+fp2_d-min(6,fp2_d)])
   translate([x,y,floor_top])cube([6,min(6,fp2_d),min(6,dev2_h-dev2_foot_h)]);
  for(x=[dev2_x,dev2_x+fp2_w-min(6,fp2_w)],y=[dev2_y-6.2,dev2_y+fp2_d+0.2])
   translate([x,y,floor_top])cube([min(6,fp2_w),6,min(6,dev2_h-dev2_foot_h)]);
 }
 // @flat-end
 if(dev2_mount=="inserts")for(h=[for(q=dev2_holes)dp2(q)])translate([dev2_x+h[0],dev2_y+h[1],floor_top])cylinder(d=max(dev2_insert_pilot+3.5,7),h=dev2_standoff);
 if(dev2_mount=="pegs")for(h=[for(q=dev2_holes)dp2(q)])translate([dev2_x+h[0],dev2_y+h[1],floor_top]){
  cylinder(d=dev2_hole_d+3,h=dev2_standoff);
  translate([0,0,dev2_standoff])cylinder(d=dev2_hole_d-0.3,h=dev2_board_t+0.8);
  translate([0,0,dev2_standoff+dev2_board_t+0.8])cylinder(d1=dev2_hole_d-0.3,d2=dev2_hole_d-1,h=0.8);
 }
 if(dev2_mount=="clips"){
  // Support ledges at the four corners plus a flexing clip on each side.
  for(x=[dev2_x-1,dev2_x+fp2_w-5],y=[dev2_y-1,dev2_y+fp2_d-5])translate([x,y,floor_top])cube([6,6,dev2_standoff]);
  for(s=[-1,1])translate([s>0?dev2_x+fp2_w+0.2:dev2_x-2.2,dev2_y+fp2_d/2-5,floor_top]){
   cube([2,10,dev2_standoff+dev2_board_t+2.5]);
   translate([s>0?-1.2:2,0,dev2_standoff+dev2_board_t+0.2])hull(){cube([1.2,10,1.6]);translate([s>0?1.2:0,0,1.6])cube([0.01,10,0.6]);}
  }
 }
}
module device2_features_cut(){
 if(sleeve&&joint=="screw")for(x=sl_joints,z=sl_joint_z)translate([x,-0.1,z])rotate([-90,0,0])cylinder(d=joint_pilot,h=8.1);
 // Strap access through each wall at quarter-depth, clear of the front/rear joints.
 if(sleeve)for(side=[-1,1],y=[dev2_y+fp2_d*0.25,dev2_y+fp2_d*0.75])
  translate([side<0?dev2_off_x-sl_half-sl_wall-0.1:dev2_off_x+sl_half-0.1,y-6,floor_top-0.1])cube([sl_wall+0.2,12,3.1]);

 if(dev2_mount=="inserts")for(h=[for(q=dev2_holes)dp2(q)])translate([dev2_x+h[0],dev2_y+h[1],floor_top+0.01])cylinder(d=dev2_insert_pilot,h=dev2_standoff+0.1);
 if(dev2_mount=="straps"||dev2_mount=="flat"||sleeve)for(x=[dev2_x-5.5,dev2_x+fp2_w+2.5],y=[dev2_y+fp2_d*0.25,dev2_y+fp2_d*0.75])
  translate([x,y-6,tray_z-0.1])cube([3,12,tray_t+0.2]);
 // Blind pockets retain at least foot_min_floor; taller dev2_feet pass through the floor by design.
 if(dev2_foot_h>0&&(dev2_mount=="flat"||sleeve))for(f=dev2_feet){corners=[dp2([f[0],f[1]]),dp2([f[0]+f[2],f[1]]),dp2([f[0],f[1]+f[3]]),dp2([f[0]+f[2],f[1]+f[3]])];x0=dev2_x+min([for(p=corners)p[0]])-foot_clearance;x1=dev2_x+max([for(p=corners)p[0]])+foot_clearance;y0=dev2_y+min([for(p=corners)p[1]])-foot_clearance;y1=dev2_y+max([for(p=corners)p[1]])+foot_clearance;deep=f[4]+foot_extra_depth;
  translate([x0,y0,deep>tray_t-foot_min_floor?tray_z-0.1:floor_top-deep])cube([x1-x0,y1-y0,deep>tray_t-foot_min_floor?tray_t+0.2:deep+0.02]);}
}


// ---- Wide-lane layout (2026-10-24, hand-set; PROPOSED, fit/strength/cable bend room UNKNOWN).
// Everything behind the plate stays inside the +-104 rack opening: keystone block 82..103, tray floor -102..+82.5; keystone lane right, Pi edge at the left limit.
// Hue: Brian's cradle corner posts (Swanky Rottis.stl, read in place from Downloads, never copied; base plate cut off).
tray_x0=-102; tray_x1=82.5;
cradle_x=34.5; cradle_y=70.2; cradle_cut=3; cradle_z=floor_top-cradle_cut-0.045;
module cradle(){translate([cradle_x,cradle_y,cradle_z])intersection(){import("C:/Users/brian/Downloads/Swanky Rottis.stl",convexity=6);
 translate([-50,-50,cradle_cut])cube([100,100,40]);}}
// Two 3 x 12 mm cable-tie slots across the cable lane, behind the Pi (cables gather there on the way out the rear).
module lane_tie_cut(){for(x=[-42.5,-19.5])translate([x,96,tray_z-0.1])cube([3,12,tray_t+0.2]);}

// ---- wizard overrides: Philips Hue Bridge v2
dev_w=90.7;
dev_d=90.4;
dev_h=30.7;
hole_d=2.7;
standoff=6.0;
insert_pilot=3.2;
board_t=1.6;
u=1;
holes=[];
keystones=[92.5];
device_mount="straps";
joint="screw";
rear_support=false;
coupon=[];
dev_off_x=34.5;  // Hue ghost centred in the cradle (no tray geometry depends on it)
dev_off_y=13.0;
joint_x=[-40.0, 18.0];
ports=[[-93.0, 26.8, 15.0, 17.5, 1.0], [-75.0, 26.8, 15.0, 17.5, 1.0], [-56.3, 25.6, 17.5, 15.0, 1.0]];  // ~0.75 mm round the Pi sockets, centred on them (Brian, 2026-10-24); USB cable slot removed
dev2_w=85.0;
dev2_d=56.0;
dev2_h=20.0;
dev2_hole_d=2.7;
dev2_standoff=6.0;
dev2_insert_pilot=3.2;
dev2_board_t=1.6;
dev2_holes=[[3.5, 3.5], [61.5, 3.5], [3.5, 52.5], [61.5, 52.5]];
dev2_mount="inserts";
dev2_off_x=53.5;
dev2_off_y=-12.0;
dev2_rot=270;
dev2_feet=[];
tray_w=184.5;
tray_d=123.4;
joint_x=[-29.5, 11.0, 57.0];
dev2_off_x=-74;  // Pi footprint X -102..-46

// HP4-M6-B identification only: 0.6 mm engraved, away from functional features.
module hp4_plate_id(){translate([34.5,0.01,8])rotate([90,0,0])linear_extrude(0.61)
 text("HP4-M6-B",size=4,font="Liberation Sans:style=Bold",halign="center");}
module hp4_tray_id(){translate([34.5,119,floor_top-0.6])linear_extrude(0.61)
 text("HP4-M6-B",size=4,font="Liberation Sans:style=Bold",halign="center");}

ks_golden();
